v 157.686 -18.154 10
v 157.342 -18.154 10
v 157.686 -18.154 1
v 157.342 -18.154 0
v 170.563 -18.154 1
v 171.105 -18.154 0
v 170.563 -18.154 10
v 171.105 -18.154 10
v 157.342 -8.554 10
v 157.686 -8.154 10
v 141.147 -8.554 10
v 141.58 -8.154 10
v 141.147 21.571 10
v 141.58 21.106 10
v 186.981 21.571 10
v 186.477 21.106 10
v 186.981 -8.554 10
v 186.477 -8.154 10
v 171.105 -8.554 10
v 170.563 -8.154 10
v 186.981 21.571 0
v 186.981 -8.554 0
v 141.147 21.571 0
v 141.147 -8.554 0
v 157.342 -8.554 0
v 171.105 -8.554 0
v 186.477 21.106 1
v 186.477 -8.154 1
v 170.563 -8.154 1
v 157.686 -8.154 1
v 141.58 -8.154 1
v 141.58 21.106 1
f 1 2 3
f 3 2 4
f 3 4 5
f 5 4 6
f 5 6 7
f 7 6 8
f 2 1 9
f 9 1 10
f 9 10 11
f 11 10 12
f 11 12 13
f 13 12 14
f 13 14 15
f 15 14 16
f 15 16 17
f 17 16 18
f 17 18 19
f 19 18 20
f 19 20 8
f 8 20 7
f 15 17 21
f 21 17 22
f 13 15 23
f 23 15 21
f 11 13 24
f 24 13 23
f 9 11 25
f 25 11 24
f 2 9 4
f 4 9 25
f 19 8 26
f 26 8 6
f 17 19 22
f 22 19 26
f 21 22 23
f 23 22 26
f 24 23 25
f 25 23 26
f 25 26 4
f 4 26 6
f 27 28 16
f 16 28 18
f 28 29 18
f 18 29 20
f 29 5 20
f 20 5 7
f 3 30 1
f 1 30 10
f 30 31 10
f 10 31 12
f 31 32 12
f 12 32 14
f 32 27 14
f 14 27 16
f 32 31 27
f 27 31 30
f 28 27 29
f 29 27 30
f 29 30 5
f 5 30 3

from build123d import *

# Parameters (mm, degrees)
SKETCH1_W           = 45.833760325
SKETCH1_H           = 30.125125166
SKETCH1_W_2         = 13.763297708
SKETCH1_H_2         = 9.6
BOSS_EXTRUDE1_DEPTH = 10
SKETCH2_W           = 44.896748031
SKETCH2_H           = 29.260196601
SKETCH2_W_2         = 12.87697359
SKETCH2_H_2         = 10
CUT_EXTRUDE1_DEPTH  = 9


with BuildPart() as part:
    # Sketch1 → Boss-Extrude1 (new body)
    with BuildSketch(Plane.XY):
        with Locations((164.06406709, 6.50813998)):
            Rectangle(SKETCH1_W, SKETCH1_H)
        with Locations((164.223693767, -13.354422603)):
            Rectangle(SKETCH1_W_2, SKETCH1_H_2)
    extrude(amount=BOSS_EXTRUDE1_DEPTH)

    # Sketch2 → Cut-Extrude1 (cut)
    with BuildSketch(Plane.XY.offset(10)):
        with Locations((164.028585862, 6.475675697)):
            Rectangle(SKETCH2_W, SKETCH2_H)
        with Locations((164.12441469, -13.154422603)):
            Rectangle(SKETCH2_W_2, SKETCH2_H_2)
    extrude(amount=-CUT_EXTRUDE1_DEPTH, mode=Mode.SUBTRACT)


solid = part.part
